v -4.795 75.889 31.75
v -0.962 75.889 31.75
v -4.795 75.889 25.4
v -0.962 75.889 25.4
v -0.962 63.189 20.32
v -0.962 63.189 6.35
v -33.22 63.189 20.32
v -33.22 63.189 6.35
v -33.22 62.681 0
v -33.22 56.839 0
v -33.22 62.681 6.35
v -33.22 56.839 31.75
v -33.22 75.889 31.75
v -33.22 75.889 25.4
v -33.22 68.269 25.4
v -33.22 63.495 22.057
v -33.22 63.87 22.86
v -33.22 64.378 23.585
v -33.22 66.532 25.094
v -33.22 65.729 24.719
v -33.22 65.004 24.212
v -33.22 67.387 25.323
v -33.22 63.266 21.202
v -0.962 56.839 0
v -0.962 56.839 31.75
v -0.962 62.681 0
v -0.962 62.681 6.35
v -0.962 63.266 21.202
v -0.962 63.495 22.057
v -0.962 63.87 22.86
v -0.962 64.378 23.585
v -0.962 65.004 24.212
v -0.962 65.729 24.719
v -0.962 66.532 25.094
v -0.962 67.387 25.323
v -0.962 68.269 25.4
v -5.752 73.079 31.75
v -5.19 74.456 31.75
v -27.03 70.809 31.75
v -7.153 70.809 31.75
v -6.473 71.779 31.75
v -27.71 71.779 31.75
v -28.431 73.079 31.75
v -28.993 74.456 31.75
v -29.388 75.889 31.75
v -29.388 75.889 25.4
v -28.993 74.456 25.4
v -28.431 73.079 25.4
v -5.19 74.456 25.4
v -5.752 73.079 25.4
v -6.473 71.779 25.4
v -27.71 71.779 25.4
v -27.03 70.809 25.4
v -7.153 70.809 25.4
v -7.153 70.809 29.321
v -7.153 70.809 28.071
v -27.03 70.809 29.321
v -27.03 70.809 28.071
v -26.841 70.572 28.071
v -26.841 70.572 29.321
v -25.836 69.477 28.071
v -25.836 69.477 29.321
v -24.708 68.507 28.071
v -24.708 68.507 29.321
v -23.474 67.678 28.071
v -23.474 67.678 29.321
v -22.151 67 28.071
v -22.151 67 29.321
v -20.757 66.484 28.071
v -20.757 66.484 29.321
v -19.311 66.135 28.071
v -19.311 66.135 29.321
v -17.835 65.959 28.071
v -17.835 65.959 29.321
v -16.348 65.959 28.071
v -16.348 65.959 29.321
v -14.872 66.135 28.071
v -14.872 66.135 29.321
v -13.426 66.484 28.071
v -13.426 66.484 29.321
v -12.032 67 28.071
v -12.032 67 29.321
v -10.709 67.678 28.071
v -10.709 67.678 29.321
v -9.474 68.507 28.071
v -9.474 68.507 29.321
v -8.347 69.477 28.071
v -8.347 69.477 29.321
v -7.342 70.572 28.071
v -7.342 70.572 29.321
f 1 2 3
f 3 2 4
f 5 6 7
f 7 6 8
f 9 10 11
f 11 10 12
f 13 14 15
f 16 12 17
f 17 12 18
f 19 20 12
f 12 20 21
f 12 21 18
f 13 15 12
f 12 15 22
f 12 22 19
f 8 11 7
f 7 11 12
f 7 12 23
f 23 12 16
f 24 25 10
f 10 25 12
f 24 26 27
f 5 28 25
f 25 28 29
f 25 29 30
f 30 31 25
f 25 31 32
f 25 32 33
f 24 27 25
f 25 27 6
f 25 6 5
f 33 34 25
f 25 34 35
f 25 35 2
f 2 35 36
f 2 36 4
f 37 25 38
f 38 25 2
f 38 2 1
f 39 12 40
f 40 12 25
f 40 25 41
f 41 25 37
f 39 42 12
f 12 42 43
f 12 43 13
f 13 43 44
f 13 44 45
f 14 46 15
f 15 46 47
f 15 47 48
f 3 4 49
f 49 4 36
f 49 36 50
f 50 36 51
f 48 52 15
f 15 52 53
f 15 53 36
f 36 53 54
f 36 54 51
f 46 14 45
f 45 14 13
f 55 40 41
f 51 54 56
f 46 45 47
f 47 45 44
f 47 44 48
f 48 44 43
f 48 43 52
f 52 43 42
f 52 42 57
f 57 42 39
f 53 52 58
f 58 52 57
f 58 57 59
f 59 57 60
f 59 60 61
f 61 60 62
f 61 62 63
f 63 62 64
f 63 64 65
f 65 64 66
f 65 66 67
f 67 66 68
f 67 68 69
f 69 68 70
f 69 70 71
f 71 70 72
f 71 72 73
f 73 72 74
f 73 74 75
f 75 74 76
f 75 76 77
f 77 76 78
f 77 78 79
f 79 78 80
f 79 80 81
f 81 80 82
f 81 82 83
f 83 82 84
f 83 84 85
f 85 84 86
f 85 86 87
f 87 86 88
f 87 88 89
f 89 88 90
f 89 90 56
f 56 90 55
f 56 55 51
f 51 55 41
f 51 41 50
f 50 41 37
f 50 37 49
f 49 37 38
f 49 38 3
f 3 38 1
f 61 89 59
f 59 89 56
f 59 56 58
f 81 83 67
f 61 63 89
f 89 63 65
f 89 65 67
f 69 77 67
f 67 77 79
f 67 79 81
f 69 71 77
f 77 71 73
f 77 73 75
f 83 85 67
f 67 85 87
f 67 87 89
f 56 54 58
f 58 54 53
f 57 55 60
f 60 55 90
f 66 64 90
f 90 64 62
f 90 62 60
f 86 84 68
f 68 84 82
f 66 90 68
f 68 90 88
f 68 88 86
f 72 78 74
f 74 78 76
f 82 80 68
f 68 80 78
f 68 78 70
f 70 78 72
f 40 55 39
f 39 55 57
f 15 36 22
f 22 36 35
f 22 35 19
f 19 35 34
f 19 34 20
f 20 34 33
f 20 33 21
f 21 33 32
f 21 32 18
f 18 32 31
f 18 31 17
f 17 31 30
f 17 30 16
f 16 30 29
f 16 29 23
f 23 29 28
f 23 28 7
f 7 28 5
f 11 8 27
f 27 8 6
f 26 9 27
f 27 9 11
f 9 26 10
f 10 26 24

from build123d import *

# Parameters (mm, degrees)
SKETCH1_W           = 53.34
SKETCH1_H           = 152.4
SKETCH1_R           = 1
BOSS_EXTRUDE1_DEPTH = 6.35
SKETCH2_W           = 32.258
SKETCH2_H           = 6.35
BOSS_EXTRUDE2_DEPTH = 31.75
SKETCH3_W           = 32.258
SKETCH3_H           = 6.35
BOSS_EXTRUDE3_DEPTH = 12.7
CUT_EXTRUDE1_REACH  = 136.322
SKETCH4_R           = 12.573
SKETCH5_W           = 32.258
SKETCH5_H           = 2.671239047
SKETCH5_H_2         = 2.428760953
BOSS_EXTRUDE4_DEPTH = 7.62
FILLET1_R           = 5.08
SKETCH8_W           = 53.34
SKETCH8_H           = 152.4
CUT_EXTRUDE4_DEPTH  = 133.964296911
SKETCH9_W           = 32.258
SKETCH9_H           = 5.842
BOSS_EXTRUDE6_DEPTH = 6.35


with BuildPart() as part:
    # Sketch1 → Boss-Extrude1 (new body)
    with BuildSketch(Plane.XY):
        with Locations((-17.091445783, 46.760481928)):
            Rectangle(SKETCH1_W, SKETCH1_H)
        with Locations((-36.141445783, 69.620481928)):
            Circle(SKETCH1_R, mode=Mode.SUBTRACT)
        with Locations((-8.201445783, 69.620481928)):
            Circle(SKETCH1_R, mode=Mode.SUBTRACT)
        with Locations((-41.221445783, 121.690481928)):
            Circle(SKETCH1_R, mode=Mode.SUBTRACT)
        with Locations((7.038554217, 120.420481928)):
            Circle(SKETCH1_R, mode=Mode.SUBTRACT)
    extrude(amount=BOSS_EXTRUDE1_DEPTH)

    # Sketch2 → Boss-Extrude2 (add)
    with BuildSketch(Plane.XY):
        with Locations((-17.091445783, 60.014063864)):
            Rectangle(SKETCH2_W, SKETCH2_H)
    extrude(amount=BOSS_EXTRUDE2_DEPTH)

    # Sketch3 → Boss-Extrude3 (add)
    with BuildSketch(Plane(origin=(0, 63.189063864, 0), x_dir=(1, 0, 0), z_dir=(0, 1, 0))):
        with Locations((-17.091445783, -28.575)):
            Rectangle(SKETCH3_W, SKETCH3_H)
    extrude(amount=BOSS_EXTRUDE3_DEPTH)

    # Sketch4 → Cut-Extrude1 (cut, up to next)
    with BuildSketch(Plane.XY.offset(31.75), mode=Mode.PRIVATE) as cut_extrude1_sk1:
        with Locations((-17.091445783, 78.510481928)):
            Circle(SKETCH4_R)
    cut_extrude1_tool1 = extrude(cut_extrude1_sk1.sketch, amount=-CUT_EXTRUDE1_REACH, mode=Mode.PRIVATE) & part.part
    add(cut_extrude1_tool1.solids().sort_by_distance((-17.091446, 78.510482, 31.75))[0], mode=Mode.SUBTRACT)

    # Sketch5 → Boss-Extrude4 (add)
    with BuildSketch(Plane(origin=(0, 63.189063864, 0), x_dir=(1, 0, 0), z_dir=(0, 1, 0))):
        with Locations((-17.091445783, -26.735619524)):
            Rectangle(SKETCH5_W, SKETCH5_H)
        with Locations((-17.091445783, -30.535619524)):
            Rectangle(SKETCH5_W, SKETCH5_H_2)
    extrude(amount=BOSS_EXTRUDE4_DEPTH)

    # Fillet1
    fillet1_edges = [part.edges().sort_by_distance(p)[0] for p in [
        (-17.091445783, 63.189063864, 25.4),
    ]]
    fillet(fillet1_edges, radius=FILLET1_R)

    # Sketch8 → Cut-Extrude4 (cut, through all)
    with BuildSketch(Plane.XY.offset(6.35)):
        with Locations((-17.091445783, 46.760481928)):
            Rectangle(SKETCH8_W, SKETCH8_H)
    extrude(amount=-CUT_EXTRUDE4_DEPTH, mode=Mode.SUBTRACT)

    # Sketch9 → Boss-Extrude6 (add)
    with BuildSketch(Plane(origin=(0, 0, 6.35), x_dir=(-1, 0, 0), z_dir=(0, 0, -1))):
        with Locations((17.091445783, 59.760063864)):
            Rectangle(SKETCH9_W, SKETCH9_H)
    extrude(amount=BOSS_EXTRUDE6_DEPTH)


solid = part.part
